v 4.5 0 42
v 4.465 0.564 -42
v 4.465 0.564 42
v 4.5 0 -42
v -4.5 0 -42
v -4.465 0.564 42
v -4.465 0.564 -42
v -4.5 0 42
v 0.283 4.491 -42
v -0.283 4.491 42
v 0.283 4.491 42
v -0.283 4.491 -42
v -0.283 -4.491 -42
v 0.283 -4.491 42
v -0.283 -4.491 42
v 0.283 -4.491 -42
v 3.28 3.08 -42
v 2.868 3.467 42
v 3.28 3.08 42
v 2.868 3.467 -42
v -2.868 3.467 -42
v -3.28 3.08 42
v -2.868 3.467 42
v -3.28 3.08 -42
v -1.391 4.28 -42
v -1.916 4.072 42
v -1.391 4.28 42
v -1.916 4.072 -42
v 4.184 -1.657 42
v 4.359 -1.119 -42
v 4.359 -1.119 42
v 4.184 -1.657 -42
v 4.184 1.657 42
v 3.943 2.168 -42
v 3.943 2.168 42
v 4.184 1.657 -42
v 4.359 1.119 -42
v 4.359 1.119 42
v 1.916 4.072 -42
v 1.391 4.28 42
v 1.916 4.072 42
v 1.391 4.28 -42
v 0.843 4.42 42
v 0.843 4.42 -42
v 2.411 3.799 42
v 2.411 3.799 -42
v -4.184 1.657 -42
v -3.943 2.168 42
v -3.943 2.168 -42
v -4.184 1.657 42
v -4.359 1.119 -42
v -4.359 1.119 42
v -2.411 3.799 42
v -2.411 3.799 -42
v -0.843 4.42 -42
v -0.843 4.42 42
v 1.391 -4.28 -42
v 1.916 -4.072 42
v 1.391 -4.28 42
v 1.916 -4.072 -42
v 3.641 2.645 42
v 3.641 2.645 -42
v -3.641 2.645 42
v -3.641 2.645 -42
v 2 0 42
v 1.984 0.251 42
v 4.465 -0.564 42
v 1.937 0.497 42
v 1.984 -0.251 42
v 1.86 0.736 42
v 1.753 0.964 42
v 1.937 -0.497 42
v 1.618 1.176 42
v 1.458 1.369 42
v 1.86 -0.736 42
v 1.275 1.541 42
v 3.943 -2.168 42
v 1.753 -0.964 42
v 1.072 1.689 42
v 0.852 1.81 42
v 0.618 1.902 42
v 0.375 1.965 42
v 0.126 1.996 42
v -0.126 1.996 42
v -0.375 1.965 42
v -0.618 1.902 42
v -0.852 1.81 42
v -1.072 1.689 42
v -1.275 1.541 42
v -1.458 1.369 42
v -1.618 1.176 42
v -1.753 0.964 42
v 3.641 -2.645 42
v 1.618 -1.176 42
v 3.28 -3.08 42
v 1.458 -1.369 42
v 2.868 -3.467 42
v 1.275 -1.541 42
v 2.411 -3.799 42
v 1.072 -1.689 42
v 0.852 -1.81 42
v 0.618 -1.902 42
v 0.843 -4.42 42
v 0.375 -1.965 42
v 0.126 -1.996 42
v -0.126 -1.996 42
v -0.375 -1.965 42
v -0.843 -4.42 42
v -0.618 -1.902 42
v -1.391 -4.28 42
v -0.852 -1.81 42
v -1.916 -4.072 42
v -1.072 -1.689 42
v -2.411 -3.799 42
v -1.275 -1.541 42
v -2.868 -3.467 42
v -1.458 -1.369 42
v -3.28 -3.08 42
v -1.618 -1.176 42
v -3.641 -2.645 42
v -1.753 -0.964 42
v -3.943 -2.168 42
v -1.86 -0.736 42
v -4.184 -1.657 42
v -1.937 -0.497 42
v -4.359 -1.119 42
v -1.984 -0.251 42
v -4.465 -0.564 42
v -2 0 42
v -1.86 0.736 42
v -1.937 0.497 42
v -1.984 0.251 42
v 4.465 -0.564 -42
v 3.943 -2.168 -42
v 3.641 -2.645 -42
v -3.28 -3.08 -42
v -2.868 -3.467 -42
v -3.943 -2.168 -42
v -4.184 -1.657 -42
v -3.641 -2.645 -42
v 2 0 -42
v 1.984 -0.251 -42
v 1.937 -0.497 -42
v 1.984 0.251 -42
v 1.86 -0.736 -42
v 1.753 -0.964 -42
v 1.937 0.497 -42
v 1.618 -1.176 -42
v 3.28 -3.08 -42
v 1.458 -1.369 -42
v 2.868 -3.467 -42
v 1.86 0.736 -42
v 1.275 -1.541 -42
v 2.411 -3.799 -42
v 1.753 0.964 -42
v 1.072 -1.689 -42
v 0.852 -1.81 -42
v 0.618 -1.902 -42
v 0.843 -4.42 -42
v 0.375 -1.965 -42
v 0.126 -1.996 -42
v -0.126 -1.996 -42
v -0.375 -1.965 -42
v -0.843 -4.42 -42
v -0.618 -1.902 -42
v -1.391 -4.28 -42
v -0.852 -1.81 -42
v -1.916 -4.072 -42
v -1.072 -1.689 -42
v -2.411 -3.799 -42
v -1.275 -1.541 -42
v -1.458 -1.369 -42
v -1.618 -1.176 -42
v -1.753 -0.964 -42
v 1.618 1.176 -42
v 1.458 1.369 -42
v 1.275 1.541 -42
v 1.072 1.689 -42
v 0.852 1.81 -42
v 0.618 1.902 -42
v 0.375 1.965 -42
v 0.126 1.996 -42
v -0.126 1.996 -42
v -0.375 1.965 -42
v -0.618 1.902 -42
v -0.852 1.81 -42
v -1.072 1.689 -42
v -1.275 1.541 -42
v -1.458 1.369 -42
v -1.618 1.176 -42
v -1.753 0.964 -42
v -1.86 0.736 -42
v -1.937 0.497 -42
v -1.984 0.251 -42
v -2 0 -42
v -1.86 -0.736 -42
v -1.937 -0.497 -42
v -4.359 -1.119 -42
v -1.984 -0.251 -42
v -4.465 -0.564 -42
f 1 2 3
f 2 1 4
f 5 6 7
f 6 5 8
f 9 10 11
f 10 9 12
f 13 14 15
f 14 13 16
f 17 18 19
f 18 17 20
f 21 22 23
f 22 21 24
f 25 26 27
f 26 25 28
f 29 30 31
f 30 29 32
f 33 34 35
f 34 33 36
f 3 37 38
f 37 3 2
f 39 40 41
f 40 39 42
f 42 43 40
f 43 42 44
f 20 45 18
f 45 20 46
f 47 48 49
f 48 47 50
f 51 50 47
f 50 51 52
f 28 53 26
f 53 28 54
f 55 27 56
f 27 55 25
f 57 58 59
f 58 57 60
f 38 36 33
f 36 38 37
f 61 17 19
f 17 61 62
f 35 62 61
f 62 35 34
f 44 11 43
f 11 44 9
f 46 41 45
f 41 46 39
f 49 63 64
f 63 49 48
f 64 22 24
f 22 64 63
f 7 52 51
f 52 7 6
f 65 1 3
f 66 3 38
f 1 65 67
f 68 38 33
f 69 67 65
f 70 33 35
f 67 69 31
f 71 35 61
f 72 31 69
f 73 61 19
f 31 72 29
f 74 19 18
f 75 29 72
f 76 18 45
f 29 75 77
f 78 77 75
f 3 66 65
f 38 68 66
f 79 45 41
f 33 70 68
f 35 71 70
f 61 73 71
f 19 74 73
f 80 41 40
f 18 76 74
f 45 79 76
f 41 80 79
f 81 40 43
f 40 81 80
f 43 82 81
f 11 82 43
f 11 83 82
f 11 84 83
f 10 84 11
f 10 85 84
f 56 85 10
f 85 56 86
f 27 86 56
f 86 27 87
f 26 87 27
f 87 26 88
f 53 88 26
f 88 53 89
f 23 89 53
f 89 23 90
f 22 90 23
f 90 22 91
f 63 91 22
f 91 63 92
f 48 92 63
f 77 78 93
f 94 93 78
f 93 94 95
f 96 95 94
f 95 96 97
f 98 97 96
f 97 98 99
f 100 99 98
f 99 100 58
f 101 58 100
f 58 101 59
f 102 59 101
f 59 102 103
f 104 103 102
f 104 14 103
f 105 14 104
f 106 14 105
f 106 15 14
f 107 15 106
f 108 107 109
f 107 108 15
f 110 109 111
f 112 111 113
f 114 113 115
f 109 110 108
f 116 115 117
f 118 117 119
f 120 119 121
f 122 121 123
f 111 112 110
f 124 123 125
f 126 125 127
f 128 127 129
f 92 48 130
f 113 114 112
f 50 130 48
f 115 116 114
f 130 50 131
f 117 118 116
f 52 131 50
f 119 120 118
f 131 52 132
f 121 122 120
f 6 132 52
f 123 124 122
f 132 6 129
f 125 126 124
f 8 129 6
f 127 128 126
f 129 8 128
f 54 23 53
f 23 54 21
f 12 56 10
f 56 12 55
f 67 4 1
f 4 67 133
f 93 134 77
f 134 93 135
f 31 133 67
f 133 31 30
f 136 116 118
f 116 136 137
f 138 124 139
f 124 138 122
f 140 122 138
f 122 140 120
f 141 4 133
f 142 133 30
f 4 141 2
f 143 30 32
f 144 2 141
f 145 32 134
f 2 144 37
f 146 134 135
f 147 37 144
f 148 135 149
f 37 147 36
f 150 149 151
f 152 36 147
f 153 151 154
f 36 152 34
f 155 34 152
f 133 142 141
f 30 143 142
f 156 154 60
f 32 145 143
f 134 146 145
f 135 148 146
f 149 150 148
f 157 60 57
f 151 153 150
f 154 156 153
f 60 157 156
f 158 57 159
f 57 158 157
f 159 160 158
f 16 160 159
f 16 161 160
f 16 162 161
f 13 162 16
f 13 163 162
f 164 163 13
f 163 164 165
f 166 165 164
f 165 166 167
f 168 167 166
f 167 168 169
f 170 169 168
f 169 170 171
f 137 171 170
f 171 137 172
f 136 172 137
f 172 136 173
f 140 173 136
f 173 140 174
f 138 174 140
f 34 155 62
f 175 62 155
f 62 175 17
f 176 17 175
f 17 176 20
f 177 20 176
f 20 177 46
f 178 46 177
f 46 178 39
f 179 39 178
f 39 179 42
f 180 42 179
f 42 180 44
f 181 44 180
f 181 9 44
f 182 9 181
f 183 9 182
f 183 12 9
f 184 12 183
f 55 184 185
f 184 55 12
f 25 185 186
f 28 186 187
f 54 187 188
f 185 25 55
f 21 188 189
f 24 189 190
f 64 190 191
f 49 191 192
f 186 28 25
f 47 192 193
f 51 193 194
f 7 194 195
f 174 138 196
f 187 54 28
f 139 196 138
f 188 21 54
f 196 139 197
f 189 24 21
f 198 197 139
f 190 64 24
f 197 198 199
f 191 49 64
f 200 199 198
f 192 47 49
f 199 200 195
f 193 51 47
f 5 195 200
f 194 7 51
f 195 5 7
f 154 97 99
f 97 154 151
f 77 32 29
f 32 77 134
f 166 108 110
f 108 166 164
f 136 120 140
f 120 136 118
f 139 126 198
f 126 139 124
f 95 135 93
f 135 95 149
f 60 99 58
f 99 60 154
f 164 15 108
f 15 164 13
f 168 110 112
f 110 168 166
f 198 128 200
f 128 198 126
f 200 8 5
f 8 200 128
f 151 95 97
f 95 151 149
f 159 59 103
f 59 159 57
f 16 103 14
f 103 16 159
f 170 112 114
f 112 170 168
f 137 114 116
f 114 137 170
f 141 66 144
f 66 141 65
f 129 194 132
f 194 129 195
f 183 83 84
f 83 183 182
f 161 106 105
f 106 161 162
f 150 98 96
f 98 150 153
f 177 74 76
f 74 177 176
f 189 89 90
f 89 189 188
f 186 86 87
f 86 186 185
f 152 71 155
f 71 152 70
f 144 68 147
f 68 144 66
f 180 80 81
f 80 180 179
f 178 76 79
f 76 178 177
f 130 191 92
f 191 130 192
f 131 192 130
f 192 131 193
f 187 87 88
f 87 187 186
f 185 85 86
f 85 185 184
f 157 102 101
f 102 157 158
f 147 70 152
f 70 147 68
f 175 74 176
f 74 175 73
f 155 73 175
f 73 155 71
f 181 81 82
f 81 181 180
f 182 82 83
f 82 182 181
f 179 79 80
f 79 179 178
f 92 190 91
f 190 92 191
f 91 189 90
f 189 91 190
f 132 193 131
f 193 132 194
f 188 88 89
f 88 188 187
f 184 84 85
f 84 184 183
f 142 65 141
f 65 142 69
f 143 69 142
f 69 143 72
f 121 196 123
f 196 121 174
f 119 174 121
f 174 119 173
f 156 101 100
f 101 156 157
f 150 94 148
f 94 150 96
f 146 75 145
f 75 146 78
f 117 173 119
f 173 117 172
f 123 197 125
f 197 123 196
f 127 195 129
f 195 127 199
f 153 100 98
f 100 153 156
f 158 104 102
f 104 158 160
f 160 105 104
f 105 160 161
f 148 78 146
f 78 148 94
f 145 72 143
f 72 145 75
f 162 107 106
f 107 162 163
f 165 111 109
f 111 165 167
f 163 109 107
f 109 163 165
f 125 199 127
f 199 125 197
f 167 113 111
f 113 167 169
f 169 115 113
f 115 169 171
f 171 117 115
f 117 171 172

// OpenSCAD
$fn = 50;


difference() {
	union() {
		translate(v = [0, 0, -42.0000000000]) {
			cylinder(h = 84, r = 4.5000000000);
		}
	}
	union() {
		translate(v = [0, 0, -100.0000000000]) {
			cylinder(h = 200, r = 2);
		}
	}
}
